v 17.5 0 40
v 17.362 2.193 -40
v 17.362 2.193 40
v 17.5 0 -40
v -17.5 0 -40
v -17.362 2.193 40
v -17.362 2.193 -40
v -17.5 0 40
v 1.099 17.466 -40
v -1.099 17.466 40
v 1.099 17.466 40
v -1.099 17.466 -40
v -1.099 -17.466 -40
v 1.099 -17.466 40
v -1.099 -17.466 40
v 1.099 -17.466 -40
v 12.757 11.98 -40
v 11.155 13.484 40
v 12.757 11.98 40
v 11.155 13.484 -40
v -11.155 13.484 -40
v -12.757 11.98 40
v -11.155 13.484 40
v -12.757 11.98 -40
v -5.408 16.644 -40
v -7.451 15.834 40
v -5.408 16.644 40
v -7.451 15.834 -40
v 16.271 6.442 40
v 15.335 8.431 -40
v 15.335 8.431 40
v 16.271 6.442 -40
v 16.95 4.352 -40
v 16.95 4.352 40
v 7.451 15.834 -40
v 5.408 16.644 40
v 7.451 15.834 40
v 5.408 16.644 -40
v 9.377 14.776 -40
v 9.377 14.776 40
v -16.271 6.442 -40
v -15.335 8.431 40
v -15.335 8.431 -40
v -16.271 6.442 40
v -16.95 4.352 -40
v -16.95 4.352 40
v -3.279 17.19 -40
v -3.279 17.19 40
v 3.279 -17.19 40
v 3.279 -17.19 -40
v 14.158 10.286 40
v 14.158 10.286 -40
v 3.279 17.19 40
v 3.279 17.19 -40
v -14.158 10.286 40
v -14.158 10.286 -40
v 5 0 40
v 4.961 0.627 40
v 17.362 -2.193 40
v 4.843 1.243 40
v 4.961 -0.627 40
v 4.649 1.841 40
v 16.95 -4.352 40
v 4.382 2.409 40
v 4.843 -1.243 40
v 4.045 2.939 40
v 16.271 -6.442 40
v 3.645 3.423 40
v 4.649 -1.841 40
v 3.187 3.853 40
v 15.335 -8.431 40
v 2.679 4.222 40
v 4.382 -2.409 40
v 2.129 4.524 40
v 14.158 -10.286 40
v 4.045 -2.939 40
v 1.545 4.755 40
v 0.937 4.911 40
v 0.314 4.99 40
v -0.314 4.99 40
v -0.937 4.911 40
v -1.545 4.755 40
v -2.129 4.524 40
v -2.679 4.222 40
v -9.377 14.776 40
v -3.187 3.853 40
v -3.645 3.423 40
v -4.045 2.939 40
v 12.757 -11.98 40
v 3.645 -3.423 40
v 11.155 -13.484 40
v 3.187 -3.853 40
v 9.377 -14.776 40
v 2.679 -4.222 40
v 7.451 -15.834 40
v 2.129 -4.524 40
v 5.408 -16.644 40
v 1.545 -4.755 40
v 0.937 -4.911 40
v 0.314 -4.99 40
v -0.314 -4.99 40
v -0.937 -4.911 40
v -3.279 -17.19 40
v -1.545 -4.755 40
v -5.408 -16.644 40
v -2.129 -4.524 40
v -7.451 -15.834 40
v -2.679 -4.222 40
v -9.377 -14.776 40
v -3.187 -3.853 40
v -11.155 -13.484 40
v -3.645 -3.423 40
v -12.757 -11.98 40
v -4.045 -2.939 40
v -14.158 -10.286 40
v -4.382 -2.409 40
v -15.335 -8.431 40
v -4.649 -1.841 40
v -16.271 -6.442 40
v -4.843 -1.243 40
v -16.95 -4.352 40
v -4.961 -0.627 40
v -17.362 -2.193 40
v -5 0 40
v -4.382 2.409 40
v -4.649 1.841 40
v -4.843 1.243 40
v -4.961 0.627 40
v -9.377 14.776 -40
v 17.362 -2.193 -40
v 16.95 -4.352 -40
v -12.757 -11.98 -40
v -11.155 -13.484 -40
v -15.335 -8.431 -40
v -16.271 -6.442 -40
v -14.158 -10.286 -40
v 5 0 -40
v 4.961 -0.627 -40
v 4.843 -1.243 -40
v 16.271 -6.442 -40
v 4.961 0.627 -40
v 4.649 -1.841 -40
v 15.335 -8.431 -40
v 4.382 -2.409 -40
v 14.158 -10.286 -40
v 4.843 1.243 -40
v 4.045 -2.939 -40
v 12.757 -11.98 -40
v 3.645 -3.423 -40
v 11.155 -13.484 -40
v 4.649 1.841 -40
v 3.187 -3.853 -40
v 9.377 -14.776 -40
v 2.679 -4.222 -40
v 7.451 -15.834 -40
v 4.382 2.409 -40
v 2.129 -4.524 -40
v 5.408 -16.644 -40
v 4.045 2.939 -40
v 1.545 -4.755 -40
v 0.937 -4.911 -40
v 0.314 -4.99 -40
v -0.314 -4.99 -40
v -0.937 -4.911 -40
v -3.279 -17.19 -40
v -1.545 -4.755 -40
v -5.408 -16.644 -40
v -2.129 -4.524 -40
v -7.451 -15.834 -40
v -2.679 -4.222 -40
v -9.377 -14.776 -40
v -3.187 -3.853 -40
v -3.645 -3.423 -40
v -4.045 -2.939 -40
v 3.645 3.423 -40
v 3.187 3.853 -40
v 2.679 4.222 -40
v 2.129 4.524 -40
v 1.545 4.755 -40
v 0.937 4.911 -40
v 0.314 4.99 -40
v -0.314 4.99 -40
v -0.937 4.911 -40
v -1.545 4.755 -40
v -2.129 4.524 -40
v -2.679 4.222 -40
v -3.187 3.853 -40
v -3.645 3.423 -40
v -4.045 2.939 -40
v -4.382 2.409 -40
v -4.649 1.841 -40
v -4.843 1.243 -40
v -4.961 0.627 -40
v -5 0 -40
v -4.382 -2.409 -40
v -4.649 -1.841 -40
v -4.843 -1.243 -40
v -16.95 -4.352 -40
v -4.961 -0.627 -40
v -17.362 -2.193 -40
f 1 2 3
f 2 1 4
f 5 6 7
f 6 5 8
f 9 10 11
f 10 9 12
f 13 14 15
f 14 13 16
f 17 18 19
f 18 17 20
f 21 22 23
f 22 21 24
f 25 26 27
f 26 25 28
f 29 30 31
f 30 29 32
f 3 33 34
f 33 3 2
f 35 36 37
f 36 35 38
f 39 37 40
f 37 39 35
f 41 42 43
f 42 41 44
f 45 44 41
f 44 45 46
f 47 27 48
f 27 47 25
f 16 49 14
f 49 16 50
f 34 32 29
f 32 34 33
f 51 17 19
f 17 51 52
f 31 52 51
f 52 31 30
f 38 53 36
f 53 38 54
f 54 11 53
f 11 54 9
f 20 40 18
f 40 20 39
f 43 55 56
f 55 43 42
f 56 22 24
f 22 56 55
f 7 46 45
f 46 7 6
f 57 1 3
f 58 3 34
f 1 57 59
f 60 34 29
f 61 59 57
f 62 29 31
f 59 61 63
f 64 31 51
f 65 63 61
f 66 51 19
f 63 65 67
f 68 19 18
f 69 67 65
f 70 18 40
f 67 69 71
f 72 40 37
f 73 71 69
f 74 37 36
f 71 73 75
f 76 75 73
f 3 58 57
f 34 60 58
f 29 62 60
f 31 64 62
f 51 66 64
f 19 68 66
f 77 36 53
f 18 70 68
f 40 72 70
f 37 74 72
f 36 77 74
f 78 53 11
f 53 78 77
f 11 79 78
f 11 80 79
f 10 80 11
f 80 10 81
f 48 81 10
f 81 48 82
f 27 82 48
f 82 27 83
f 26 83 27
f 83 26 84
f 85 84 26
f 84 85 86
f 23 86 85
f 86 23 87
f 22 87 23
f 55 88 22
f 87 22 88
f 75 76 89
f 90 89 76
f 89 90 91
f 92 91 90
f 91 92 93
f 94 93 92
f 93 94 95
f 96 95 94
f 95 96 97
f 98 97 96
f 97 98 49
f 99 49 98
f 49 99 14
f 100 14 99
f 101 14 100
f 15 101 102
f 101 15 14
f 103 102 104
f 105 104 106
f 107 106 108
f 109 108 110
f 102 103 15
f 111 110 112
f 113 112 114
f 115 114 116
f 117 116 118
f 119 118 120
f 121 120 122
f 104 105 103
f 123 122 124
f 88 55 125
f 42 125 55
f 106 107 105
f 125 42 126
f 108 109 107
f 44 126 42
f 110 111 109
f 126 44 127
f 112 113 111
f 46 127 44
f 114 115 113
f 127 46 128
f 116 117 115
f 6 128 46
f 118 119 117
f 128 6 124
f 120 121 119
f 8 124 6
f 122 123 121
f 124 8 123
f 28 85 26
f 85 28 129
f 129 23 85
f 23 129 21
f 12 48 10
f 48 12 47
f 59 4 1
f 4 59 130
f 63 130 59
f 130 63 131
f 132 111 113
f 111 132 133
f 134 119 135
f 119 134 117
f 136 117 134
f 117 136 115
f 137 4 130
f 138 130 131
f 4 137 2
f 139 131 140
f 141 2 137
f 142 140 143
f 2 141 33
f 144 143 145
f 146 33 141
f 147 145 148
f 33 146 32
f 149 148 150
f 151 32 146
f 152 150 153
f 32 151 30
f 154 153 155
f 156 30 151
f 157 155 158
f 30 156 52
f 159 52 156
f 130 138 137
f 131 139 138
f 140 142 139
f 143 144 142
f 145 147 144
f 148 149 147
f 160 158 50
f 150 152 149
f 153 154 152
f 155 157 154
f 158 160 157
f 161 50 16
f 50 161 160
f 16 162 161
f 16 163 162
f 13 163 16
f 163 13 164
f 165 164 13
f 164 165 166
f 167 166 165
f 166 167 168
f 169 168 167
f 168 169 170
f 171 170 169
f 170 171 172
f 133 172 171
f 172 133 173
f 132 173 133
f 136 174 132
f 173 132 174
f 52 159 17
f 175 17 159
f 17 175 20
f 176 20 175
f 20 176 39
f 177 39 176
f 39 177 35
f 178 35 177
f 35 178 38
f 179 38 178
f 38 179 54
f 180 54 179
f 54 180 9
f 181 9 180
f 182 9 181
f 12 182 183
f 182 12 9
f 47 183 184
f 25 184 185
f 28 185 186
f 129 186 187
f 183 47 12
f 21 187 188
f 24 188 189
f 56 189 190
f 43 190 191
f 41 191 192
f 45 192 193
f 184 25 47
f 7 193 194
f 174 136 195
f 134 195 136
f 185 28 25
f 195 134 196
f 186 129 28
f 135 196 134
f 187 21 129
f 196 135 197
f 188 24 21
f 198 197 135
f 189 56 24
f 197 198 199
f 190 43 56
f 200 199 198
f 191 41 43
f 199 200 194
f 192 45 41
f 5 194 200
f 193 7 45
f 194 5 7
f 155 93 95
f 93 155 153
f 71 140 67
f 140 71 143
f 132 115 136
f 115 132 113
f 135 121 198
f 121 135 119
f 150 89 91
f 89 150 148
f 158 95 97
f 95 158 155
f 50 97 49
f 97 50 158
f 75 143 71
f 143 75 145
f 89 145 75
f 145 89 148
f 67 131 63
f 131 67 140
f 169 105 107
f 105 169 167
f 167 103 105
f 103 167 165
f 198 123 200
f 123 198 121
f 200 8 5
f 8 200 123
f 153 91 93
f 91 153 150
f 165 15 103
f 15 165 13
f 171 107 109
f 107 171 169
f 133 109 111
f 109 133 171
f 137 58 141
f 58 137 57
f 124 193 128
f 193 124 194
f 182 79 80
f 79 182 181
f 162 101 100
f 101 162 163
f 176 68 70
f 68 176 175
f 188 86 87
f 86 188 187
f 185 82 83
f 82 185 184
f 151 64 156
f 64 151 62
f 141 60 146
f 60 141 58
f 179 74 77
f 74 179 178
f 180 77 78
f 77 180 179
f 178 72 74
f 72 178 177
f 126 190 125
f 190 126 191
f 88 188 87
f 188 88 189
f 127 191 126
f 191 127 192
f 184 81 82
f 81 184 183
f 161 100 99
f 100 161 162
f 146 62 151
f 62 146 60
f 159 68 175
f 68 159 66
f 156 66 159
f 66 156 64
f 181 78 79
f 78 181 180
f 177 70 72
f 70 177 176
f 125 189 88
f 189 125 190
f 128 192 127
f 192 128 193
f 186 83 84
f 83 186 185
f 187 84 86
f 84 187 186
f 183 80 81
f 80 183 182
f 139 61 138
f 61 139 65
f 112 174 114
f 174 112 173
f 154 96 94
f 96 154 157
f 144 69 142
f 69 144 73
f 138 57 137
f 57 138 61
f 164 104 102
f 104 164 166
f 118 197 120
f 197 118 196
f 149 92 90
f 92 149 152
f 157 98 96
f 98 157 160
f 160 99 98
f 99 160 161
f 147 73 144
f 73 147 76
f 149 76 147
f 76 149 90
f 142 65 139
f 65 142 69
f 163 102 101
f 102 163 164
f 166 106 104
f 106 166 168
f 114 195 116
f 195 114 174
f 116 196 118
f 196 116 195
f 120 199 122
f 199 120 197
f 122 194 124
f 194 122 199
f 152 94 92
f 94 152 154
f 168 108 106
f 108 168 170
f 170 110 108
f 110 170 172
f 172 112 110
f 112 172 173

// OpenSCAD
$fn = 50;


difference() {
	union() {
		translate(v = [0, 0, -40.0000000000]) {
			cylinder(h = 80, r = 17.5000000000);
		}
	}
	union() {
		translate(v = [0, 0, -100.0000000000]) {
			cylinder(h = 200, r = 5);
		}
	}
}
